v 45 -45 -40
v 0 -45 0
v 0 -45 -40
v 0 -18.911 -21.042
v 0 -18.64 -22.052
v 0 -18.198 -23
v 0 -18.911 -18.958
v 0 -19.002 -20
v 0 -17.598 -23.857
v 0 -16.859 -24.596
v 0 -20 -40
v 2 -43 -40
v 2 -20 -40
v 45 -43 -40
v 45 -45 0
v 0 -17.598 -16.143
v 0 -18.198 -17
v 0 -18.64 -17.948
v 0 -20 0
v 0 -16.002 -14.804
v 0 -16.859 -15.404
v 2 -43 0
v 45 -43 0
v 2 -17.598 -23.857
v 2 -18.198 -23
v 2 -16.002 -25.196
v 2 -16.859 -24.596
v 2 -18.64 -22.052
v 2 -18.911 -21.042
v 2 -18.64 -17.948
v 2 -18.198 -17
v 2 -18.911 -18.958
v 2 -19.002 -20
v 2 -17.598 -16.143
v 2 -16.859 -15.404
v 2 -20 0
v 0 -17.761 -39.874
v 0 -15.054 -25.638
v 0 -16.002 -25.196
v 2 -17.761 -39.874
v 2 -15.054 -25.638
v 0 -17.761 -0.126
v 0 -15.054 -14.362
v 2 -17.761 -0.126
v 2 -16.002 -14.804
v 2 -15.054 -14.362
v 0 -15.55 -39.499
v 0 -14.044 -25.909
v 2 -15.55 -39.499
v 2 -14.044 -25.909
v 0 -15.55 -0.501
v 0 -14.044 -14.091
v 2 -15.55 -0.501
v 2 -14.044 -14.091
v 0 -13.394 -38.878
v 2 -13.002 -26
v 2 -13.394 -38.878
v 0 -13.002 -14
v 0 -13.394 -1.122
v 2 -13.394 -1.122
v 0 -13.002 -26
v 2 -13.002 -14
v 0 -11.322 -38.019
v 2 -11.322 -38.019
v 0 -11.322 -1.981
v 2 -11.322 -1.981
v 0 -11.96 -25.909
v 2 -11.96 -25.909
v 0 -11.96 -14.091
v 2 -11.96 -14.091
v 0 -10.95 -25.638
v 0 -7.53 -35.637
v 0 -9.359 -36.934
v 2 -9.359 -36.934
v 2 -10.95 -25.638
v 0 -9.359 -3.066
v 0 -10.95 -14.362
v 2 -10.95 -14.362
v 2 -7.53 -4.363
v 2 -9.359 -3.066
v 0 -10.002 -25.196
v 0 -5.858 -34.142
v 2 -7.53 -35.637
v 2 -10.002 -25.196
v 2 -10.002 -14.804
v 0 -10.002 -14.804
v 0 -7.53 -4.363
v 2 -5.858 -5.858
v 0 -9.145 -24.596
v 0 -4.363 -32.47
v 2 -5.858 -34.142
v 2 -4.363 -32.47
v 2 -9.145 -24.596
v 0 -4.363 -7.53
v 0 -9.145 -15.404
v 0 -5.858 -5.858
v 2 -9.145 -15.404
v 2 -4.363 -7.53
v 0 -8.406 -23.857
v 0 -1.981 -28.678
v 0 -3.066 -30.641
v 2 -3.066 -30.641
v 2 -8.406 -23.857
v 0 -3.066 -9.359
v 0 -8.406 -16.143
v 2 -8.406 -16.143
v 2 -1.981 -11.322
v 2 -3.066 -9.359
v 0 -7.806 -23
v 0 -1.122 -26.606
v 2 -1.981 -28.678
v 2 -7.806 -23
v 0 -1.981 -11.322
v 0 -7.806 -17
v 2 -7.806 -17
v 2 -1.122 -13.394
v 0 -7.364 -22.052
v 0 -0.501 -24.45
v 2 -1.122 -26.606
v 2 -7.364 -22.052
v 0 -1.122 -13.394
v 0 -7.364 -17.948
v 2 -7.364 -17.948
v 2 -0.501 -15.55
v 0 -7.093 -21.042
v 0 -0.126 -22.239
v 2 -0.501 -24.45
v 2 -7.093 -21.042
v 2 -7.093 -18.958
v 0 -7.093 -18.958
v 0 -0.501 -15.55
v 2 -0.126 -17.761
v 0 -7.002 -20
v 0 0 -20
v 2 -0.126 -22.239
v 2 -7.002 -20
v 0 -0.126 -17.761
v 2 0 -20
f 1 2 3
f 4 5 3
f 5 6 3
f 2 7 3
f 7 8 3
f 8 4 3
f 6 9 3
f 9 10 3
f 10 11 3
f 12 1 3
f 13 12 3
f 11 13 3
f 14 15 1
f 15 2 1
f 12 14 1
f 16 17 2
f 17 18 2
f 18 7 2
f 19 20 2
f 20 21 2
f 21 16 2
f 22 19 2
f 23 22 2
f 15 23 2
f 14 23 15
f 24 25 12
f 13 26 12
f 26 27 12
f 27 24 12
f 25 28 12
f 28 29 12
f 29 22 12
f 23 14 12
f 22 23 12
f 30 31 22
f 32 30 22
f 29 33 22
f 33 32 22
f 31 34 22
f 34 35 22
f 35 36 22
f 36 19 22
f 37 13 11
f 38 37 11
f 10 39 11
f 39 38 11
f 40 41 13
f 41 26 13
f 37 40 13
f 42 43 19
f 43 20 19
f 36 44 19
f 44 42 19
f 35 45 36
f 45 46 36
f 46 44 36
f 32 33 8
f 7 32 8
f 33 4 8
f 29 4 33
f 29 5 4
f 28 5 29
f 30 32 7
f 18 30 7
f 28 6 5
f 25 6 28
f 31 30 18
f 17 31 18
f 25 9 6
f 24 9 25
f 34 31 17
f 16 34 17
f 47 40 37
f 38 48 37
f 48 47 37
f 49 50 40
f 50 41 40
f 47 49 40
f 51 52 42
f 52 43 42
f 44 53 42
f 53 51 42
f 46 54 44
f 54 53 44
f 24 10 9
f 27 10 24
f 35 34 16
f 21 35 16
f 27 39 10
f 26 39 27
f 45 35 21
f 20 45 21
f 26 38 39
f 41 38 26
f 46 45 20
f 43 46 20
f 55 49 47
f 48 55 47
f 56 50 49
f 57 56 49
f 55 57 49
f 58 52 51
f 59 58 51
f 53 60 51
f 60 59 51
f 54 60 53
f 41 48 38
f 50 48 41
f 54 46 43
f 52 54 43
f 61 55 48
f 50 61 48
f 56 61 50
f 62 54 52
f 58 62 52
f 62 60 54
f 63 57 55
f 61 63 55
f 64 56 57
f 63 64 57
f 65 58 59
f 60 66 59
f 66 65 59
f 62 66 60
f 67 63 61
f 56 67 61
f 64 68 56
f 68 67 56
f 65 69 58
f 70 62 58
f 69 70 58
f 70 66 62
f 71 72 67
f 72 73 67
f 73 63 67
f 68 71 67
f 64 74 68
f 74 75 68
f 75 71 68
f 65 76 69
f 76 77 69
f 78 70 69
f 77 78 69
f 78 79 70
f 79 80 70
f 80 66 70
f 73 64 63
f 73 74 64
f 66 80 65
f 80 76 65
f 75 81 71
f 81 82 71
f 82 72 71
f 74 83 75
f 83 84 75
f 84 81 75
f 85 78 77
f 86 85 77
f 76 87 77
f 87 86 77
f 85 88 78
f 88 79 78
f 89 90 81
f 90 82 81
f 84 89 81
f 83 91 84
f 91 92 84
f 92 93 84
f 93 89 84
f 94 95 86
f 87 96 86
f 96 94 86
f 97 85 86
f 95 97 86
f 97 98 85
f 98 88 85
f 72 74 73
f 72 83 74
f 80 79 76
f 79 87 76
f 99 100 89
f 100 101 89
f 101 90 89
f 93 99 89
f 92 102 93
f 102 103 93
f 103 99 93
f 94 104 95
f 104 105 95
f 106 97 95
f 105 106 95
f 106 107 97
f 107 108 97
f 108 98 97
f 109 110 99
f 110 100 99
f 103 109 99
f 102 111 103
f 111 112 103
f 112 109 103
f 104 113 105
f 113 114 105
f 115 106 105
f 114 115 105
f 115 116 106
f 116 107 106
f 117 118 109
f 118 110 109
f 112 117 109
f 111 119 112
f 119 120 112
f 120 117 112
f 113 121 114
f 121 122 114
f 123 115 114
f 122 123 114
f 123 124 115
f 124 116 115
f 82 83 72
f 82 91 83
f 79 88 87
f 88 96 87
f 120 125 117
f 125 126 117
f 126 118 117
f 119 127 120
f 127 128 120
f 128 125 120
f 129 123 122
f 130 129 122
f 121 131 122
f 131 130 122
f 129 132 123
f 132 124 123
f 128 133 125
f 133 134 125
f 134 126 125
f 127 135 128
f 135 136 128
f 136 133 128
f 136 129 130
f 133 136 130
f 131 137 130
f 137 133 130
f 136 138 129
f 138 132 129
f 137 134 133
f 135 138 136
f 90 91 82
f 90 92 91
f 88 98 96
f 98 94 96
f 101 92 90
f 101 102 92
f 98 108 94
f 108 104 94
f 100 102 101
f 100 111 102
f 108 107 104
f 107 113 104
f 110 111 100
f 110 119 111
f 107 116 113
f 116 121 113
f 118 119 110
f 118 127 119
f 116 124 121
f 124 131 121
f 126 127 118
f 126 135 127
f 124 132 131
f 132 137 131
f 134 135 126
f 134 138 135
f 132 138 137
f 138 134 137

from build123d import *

# Parameters (mm, degrees)
BOSS_EXTRUDE1_DEPTH = 40
FILLET1_R           = 20
FILLET2_R           = 20
SKETCH2_R           = 6
CUT_EXTRUDE1_DEPTH  = 10


with BuildPart() as part:
    # Sketch1 → Boss-Extrude1 (new body)
    with BuildSketch(Plane.XY):
        Polygon((0, 0), (0, -45), (45, -45), (45, -43), (2, -43), (2, 0), align=None)
    extrude(amount=-BOSS_EXTRUDE1_DEPTH)

    # Fillet1
    fillet1_edges = [part.edges().sort_by_distance(p)[0] for p in [
        (1, 0, -40),
    ]]
    fillet(fillet1_edges, radius=FILLET1_R)

    # Fillet2
    fillet2_edges = [part.edges().sort_by_distance(p)[0] for p in [
        (1, 0, 0),
    ]]
    fillet(fillet2_edges, radius=FILLET2_R - 0.0001)  # a hair under: the kernel refuses the full size

    # Sketch2 → Cut-Extrude1 (cut)
    with BuildSketch(Plane.ZY):
        with Locations(Location((-20, -13.002174514, 0), (0, 0, 270))):
            Circle(SKETCH2_R)
    extrude(amount=-CUT_EXTRUDE1_DEPTH, mode=Mode.SUBTRACT)


solid = part.part
